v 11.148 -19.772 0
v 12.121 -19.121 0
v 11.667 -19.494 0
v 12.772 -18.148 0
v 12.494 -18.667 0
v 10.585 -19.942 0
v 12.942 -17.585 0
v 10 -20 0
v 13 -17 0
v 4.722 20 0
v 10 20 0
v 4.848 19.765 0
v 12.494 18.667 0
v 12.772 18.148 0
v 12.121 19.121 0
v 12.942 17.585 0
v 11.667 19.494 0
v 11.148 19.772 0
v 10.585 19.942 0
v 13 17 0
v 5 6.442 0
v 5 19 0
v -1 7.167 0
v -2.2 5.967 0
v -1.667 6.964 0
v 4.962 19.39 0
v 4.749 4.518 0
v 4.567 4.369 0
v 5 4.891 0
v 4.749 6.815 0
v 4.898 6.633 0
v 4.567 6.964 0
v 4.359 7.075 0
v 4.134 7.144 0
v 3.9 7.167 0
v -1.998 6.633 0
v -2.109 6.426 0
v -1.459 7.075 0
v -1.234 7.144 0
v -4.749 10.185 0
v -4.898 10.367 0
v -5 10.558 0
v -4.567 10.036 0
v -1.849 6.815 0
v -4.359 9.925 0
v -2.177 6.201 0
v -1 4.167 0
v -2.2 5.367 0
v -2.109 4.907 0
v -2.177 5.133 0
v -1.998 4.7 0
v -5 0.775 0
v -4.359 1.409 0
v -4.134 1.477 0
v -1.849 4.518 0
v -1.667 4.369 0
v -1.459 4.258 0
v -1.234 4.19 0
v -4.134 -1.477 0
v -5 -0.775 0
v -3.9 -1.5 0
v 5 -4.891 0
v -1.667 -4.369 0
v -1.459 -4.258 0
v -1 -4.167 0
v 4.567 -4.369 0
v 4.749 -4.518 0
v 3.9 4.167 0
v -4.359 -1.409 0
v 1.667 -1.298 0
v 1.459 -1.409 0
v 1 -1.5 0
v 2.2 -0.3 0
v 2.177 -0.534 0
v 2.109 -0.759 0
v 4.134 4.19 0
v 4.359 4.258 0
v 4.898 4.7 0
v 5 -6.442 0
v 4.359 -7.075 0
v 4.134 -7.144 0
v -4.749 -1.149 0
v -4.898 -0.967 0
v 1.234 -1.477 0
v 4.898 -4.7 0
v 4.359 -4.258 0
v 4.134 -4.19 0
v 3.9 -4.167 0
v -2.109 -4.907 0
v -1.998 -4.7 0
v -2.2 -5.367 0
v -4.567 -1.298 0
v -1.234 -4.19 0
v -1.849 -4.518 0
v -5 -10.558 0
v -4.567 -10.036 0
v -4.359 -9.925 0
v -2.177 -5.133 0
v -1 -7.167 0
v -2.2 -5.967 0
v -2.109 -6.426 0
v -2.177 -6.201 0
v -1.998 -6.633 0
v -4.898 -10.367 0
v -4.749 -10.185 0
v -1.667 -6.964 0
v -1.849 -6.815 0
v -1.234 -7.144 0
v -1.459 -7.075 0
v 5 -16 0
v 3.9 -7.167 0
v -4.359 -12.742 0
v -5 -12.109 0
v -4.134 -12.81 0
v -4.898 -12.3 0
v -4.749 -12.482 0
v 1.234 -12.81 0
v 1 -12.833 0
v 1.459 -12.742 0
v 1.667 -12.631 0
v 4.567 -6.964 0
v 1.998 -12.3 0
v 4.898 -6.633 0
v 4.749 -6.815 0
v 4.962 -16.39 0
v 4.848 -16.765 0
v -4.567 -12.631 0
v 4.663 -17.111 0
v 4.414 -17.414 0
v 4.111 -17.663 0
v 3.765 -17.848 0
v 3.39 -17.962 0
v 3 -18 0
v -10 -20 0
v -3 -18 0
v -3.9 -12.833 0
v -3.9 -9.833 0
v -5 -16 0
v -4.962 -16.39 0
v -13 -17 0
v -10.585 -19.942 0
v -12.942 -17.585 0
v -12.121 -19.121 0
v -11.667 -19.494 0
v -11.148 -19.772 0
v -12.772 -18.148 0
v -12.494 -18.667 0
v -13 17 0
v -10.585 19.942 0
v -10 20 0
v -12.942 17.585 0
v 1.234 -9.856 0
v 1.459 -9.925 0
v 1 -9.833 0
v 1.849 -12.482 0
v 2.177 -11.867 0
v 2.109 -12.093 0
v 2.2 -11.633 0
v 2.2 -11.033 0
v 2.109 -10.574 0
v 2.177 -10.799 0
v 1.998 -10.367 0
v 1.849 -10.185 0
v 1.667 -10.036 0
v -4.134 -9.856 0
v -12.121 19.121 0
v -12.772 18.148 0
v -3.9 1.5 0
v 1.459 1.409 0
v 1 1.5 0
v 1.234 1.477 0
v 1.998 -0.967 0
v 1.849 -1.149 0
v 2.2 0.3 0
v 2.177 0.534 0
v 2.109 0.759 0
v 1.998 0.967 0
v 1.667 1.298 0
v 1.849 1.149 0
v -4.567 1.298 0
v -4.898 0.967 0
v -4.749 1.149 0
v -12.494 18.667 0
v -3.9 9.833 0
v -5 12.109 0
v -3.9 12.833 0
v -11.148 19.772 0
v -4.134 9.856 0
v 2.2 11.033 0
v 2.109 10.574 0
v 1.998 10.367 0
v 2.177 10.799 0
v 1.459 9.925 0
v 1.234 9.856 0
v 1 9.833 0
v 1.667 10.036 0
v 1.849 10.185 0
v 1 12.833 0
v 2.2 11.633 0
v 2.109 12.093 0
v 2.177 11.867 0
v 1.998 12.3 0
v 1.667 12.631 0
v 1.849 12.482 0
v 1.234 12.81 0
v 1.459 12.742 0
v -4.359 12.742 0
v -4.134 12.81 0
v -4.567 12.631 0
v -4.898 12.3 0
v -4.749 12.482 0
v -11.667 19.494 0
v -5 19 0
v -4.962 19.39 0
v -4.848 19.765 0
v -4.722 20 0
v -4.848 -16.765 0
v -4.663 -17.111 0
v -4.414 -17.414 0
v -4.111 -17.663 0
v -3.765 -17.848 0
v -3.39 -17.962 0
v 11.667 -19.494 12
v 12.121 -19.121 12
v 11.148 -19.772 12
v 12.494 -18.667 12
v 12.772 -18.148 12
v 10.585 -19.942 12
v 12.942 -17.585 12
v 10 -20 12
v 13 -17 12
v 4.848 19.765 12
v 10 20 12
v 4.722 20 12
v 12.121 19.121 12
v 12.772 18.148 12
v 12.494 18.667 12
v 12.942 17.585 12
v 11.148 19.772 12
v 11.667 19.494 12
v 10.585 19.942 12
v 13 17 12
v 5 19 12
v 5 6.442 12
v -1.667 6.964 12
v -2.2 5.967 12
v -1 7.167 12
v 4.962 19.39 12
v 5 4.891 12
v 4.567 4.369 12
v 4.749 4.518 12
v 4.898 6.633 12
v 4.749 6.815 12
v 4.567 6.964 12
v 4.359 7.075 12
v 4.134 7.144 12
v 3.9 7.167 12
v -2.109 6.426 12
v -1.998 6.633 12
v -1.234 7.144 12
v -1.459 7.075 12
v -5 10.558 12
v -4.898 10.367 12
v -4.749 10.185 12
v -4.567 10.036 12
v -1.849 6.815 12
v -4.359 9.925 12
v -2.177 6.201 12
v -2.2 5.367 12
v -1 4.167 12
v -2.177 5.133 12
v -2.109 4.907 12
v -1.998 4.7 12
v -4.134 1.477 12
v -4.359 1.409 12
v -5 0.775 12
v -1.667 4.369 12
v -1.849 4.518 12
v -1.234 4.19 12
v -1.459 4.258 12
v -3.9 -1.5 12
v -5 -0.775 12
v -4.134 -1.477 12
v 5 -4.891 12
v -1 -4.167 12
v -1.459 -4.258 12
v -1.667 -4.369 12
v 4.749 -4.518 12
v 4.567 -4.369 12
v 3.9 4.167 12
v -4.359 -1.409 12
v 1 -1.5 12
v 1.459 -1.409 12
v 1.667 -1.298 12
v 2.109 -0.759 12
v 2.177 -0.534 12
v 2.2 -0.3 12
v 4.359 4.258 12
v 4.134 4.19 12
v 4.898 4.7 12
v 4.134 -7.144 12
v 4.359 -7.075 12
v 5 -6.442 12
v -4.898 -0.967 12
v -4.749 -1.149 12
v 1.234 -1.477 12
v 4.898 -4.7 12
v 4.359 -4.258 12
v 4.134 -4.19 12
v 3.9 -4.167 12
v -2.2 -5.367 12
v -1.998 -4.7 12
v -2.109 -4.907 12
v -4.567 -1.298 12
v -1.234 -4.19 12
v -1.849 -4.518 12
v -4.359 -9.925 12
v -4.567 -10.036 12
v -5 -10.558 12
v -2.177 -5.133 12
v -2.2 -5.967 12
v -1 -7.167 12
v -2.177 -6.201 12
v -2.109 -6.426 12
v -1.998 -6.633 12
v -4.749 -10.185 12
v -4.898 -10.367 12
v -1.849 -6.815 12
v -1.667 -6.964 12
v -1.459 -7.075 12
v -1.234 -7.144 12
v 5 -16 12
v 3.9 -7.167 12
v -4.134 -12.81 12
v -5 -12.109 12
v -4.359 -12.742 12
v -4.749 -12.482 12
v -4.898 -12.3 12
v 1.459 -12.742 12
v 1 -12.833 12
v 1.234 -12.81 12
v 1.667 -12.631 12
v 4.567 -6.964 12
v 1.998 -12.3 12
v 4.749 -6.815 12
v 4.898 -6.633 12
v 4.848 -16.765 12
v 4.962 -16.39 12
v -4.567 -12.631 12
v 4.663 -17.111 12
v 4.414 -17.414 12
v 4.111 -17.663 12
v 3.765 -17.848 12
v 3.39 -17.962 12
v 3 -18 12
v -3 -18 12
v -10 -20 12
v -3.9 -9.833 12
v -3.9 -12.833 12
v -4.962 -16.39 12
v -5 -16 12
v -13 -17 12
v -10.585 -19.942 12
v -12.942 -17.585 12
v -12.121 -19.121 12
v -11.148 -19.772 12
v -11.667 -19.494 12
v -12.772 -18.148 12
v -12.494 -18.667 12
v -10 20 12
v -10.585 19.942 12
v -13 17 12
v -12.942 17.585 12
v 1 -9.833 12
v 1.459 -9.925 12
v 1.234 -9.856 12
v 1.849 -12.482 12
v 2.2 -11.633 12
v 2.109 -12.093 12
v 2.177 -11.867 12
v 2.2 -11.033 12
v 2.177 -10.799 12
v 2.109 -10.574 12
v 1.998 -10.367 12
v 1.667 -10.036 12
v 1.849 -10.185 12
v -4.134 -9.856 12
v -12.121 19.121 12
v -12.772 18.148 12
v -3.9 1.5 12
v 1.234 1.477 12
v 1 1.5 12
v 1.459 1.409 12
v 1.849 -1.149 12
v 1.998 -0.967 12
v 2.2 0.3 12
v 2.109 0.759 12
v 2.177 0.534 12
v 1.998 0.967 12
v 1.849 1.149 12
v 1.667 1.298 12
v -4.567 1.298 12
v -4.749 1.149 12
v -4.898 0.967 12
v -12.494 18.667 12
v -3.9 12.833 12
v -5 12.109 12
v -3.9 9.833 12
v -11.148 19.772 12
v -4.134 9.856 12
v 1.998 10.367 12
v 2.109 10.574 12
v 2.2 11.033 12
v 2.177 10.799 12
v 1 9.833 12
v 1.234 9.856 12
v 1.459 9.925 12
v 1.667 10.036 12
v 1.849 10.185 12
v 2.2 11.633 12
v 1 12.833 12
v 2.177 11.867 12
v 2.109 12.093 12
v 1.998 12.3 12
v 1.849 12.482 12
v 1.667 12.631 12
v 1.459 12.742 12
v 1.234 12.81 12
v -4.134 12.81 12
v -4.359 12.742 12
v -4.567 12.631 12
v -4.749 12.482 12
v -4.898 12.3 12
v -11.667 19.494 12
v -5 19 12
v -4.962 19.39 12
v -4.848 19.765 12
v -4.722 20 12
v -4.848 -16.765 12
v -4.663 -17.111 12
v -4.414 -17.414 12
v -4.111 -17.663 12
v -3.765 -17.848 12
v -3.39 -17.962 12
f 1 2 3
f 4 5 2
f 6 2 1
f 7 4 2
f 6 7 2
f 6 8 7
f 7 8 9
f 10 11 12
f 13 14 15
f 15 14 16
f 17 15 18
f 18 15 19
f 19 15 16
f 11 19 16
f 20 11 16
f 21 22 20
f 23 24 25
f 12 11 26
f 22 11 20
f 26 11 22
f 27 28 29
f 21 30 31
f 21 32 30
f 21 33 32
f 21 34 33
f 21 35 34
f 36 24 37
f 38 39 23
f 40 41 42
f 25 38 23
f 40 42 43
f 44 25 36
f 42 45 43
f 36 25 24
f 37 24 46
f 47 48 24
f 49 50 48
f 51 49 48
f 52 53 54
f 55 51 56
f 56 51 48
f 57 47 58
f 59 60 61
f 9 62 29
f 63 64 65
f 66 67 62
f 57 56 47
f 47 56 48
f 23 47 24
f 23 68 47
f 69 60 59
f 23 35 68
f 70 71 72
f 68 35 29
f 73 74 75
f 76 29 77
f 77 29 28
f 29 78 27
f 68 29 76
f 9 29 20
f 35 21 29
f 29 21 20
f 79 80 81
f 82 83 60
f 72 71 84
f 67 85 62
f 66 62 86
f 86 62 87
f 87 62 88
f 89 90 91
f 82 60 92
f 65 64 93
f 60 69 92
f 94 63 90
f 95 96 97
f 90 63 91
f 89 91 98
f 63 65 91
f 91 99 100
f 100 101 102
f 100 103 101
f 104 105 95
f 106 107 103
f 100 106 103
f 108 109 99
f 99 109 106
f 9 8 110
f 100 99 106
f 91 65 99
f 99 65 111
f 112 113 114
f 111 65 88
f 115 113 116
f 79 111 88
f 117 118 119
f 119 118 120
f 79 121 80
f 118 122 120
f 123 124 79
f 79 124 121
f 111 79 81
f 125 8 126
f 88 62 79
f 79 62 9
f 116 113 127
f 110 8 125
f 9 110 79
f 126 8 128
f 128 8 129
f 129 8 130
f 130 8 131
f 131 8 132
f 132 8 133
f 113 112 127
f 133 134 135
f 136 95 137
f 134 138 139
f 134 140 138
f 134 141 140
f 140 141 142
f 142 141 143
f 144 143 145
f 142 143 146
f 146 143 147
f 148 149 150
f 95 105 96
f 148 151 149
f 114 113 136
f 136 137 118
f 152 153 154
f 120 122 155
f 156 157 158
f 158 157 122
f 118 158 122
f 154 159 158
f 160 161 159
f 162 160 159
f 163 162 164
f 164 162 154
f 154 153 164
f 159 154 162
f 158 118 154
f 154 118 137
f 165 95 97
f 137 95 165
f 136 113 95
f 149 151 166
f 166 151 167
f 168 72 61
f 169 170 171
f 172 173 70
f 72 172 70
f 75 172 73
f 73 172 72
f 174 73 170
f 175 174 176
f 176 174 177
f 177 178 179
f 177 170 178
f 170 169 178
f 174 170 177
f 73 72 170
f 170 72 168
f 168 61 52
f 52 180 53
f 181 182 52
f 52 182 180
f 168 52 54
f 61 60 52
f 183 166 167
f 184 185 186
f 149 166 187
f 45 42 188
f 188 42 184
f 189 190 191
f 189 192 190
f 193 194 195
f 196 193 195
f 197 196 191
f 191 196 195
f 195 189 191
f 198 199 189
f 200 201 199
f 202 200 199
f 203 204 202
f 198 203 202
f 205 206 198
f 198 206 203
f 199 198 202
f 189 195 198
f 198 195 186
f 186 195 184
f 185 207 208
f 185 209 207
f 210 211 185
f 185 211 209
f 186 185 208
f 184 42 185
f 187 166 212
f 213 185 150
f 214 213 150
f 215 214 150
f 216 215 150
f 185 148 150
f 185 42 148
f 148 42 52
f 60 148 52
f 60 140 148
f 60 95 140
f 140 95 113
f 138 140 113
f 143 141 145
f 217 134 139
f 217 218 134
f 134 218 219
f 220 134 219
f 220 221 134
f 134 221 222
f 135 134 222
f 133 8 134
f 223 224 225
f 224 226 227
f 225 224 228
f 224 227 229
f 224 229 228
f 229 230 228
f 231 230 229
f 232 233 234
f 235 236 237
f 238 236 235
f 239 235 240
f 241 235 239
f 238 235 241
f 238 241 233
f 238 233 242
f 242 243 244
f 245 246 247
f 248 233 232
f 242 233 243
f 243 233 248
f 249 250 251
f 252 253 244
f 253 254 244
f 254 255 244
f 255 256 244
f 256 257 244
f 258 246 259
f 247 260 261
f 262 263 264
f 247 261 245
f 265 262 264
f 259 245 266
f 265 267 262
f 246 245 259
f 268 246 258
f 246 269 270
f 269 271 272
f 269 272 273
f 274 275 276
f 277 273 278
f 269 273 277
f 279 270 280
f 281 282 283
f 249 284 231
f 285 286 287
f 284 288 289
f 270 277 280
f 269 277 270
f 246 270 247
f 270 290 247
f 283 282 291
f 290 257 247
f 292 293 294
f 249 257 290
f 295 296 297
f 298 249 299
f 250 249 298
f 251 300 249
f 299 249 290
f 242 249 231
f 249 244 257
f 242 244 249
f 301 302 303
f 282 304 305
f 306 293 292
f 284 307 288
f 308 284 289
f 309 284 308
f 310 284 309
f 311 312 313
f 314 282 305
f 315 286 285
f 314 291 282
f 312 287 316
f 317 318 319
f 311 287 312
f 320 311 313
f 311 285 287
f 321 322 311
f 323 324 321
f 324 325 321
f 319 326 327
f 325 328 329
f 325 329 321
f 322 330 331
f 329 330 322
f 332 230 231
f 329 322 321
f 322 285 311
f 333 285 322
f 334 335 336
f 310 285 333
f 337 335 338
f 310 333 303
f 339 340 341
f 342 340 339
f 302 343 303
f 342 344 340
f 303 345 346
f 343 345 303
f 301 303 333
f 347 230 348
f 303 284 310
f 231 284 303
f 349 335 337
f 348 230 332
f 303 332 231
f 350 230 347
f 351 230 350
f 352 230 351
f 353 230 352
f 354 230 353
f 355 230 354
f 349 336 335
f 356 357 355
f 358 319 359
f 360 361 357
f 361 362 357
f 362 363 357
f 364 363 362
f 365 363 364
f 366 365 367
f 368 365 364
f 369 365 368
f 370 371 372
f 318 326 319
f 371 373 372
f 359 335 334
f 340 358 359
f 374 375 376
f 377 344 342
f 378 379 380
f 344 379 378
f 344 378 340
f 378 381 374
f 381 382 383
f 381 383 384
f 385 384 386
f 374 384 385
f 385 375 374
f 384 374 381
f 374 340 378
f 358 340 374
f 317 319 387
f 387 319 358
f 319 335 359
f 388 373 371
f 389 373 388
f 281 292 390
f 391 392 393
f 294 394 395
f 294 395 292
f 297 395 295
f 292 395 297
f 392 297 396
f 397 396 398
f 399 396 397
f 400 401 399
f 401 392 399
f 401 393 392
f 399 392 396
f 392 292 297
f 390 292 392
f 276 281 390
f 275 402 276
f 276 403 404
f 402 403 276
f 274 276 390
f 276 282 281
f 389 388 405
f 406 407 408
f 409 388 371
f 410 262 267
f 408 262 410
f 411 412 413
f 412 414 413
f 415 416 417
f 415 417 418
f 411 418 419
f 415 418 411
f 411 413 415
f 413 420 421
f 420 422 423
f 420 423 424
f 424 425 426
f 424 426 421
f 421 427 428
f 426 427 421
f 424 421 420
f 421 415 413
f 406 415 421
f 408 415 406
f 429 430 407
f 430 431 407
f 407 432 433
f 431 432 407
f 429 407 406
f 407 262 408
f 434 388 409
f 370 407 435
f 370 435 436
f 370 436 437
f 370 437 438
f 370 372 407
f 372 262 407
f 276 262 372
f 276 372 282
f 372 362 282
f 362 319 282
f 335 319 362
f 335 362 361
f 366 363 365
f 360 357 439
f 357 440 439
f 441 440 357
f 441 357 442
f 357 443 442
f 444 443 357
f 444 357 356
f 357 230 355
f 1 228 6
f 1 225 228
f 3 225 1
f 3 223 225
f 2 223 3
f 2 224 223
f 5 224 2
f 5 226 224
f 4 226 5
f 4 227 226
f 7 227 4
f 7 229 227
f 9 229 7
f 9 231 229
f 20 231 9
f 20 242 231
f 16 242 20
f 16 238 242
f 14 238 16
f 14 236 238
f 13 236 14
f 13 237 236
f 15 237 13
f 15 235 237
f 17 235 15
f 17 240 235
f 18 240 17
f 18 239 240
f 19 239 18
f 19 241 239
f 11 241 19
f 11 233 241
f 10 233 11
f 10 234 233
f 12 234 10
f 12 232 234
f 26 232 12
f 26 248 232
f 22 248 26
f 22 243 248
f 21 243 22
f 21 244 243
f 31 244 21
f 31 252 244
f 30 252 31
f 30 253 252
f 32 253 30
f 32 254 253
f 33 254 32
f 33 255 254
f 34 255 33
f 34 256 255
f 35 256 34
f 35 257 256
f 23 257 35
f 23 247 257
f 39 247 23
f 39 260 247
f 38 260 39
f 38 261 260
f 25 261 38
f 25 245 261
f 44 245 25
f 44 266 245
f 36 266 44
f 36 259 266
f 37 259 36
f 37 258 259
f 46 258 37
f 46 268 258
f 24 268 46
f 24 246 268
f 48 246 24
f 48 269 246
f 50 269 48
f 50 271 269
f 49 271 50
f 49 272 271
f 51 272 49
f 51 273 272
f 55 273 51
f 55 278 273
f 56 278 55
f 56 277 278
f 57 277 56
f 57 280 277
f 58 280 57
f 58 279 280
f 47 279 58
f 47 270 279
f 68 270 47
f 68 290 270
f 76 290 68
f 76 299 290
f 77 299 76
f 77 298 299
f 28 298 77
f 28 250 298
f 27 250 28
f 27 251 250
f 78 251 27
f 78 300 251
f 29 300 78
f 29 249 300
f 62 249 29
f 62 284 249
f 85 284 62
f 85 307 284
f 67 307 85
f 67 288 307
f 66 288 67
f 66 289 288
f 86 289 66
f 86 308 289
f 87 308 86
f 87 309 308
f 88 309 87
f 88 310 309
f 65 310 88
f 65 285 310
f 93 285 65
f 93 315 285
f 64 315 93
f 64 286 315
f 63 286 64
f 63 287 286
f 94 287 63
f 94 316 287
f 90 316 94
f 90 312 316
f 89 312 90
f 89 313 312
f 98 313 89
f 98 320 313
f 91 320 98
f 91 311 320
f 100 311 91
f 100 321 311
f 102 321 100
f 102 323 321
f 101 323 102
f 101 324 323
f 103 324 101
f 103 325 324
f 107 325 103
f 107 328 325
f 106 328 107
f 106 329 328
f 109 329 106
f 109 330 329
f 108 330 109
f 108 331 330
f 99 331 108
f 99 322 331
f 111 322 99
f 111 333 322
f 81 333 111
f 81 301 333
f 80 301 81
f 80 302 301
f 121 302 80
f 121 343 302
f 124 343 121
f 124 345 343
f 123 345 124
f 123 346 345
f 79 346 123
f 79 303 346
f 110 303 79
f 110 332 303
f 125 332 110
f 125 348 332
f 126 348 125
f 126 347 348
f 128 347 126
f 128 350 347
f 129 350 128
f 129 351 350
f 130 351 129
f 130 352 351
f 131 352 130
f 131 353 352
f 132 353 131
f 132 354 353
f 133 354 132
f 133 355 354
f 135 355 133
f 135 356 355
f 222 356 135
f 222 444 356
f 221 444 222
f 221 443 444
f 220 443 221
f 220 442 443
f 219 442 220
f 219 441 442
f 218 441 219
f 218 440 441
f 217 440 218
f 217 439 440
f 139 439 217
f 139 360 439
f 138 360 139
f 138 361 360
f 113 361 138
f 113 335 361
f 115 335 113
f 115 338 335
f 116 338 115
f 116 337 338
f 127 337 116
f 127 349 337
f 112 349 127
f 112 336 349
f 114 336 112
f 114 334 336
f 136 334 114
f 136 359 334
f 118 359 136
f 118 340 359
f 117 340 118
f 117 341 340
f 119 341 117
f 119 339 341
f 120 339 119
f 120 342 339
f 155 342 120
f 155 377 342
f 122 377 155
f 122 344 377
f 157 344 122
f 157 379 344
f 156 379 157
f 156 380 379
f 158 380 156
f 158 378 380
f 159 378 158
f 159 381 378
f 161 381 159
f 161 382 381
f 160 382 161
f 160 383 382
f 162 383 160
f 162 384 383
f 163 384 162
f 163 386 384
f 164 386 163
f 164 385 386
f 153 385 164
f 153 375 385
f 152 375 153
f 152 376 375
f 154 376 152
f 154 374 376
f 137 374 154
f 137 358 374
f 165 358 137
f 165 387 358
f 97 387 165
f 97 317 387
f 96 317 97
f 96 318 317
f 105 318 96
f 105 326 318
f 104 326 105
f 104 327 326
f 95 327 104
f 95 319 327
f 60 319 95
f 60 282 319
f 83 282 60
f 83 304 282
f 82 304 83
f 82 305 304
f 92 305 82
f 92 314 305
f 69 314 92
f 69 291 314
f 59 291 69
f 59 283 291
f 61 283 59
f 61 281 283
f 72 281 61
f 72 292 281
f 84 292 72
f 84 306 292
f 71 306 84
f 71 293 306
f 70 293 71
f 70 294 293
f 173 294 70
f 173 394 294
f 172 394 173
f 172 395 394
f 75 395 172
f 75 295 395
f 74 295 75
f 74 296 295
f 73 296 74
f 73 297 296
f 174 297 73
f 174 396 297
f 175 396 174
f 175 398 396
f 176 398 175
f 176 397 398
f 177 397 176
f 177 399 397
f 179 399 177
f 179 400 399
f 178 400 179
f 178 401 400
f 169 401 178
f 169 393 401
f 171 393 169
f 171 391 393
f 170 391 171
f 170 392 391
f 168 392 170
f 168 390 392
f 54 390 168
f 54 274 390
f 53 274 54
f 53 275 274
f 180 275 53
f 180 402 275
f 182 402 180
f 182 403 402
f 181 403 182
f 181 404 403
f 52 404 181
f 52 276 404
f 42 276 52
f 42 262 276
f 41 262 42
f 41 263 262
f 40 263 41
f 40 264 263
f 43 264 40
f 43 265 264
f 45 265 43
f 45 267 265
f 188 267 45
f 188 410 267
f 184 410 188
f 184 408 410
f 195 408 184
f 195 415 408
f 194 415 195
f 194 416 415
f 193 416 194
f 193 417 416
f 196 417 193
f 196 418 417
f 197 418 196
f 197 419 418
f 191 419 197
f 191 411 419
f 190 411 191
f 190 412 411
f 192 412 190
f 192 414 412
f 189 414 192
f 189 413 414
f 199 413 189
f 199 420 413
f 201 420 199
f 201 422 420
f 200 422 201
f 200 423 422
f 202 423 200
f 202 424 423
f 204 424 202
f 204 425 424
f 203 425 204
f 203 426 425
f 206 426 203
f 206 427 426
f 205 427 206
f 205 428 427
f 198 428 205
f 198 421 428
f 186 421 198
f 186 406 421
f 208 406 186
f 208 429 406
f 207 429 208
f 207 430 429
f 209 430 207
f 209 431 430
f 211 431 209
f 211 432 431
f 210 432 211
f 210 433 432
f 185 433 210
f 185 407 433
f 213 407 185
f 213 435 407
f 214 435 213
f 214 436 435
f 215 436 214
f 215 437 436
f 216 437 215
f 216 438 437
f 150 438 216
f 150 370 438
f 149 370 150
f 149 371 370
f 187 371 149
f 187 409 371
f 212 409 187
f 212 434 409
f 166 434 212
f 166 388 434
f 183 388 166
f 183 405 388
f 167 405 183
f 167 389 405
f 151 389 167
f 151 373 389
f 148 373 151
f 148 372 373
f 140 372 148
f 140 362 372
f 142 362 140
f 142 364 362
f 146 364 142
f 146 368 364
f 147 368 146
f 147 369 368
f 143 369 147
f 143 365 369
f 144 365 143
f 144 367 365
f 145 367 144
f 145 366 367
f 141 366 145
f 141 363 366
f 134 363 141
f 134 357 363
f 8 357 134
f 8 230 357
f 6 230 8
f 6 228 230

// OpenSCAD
// bagclip_labyrinth — thread the bag's folded top down through a comb of
// alternating teeth; the forced weave grips by friction. RIGID (no flex), so
// it's durable in PLA. Prints flat, support-free (profile extruded along Z).

clip_w    = 12;    // width along the bag edge (Z)
body_x    = 26;    // overall X
body_h    = 40;    // overall Y (height)
corner    = 3;     // outer corner radius
wall      = 3;     // solid wall around the channel
channel_w = 10;    // straight channel width
overlap   = 2.2;   // how far each tooth reaches PAST center (forces the weave)
tooth_h   = 3.0;   // tooth thickness (Y)
tooth_r   = 1.2;   // tooth tip rounding
n_teeth   = 5;     // number of alternating teeth

$fn = 32;

module rrect(w, d, r) { offset(r) offset(-r) square([w, d], center=true); }

module tooth(y, from_left) {
  // a rounded bar reaching from one channel wall to `overlap` past center
  x0 = from_left ? -channel_w/2 - 0.1 : -overlap;
  x1 = from_left ?  overlap          :  channel_w/2 + 0.1;
  translate([(x0+x1)/2, y])
    rrect(x1 - x0, tooth_h, tooth_r);
}

module clip2d() {
  union() {
    difference() {
      rrect(body_x, body_h, corner);
      // open-top channel (extends past the top edge so the bag can enter)
      translate([0, wall/2])
        rrect(channel_w, body_h - wall + 2, corner - 1);
    }
    // alternating teeth poke into the channel
    for (i = [0 : n_teeth-1])
      tooth(-body_h/2 + wall + (i+1) * (body_h - 2*wall) / (n_teeth+1),
            (i % 2) == 0);
  }
}

linear_extrude(clip_w) clip2d();
